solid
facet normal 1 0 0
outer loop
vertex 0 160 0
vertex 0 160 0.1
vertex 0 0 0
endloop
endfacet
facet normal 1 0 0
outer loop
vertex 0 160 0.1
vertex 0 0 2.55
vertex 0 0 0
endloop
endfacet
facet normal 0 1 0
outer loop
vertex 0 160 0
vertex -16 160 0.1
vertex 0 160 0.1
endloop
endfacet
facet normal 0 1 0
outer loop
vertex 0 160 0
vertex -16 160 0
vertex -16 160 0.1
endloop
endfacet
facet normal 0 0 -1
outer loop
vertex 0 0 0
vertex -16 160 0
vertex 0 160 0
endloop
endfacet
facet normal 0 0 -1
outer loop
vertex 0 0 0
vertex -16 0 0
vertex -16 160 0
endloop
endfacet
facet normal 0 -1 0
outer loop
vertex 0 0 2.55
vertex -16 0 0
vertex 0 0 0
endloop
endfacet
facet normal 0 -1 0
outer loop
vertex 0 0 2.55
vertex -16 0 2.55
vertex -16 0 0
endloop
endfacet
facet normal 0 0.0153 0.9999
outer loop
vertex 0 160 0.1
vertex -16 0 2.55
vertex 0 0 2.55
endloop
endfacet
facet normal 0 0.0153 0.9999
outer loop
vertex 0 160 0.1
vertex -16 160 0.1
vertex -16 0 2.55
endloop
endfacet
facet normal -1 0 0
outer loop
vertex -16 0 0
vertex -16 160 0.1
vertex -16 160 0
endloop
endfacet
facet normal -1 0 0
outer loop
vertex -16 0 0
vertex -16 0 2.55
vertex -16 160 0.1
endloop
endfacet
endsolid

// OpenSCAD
// this is one single spacer that I used to align some wood work

rotate([0,270,0])
    linear_extrude(16)
        polygon([[0, 0], [0,160],[0.1, 160], [2.55, 0]]);
